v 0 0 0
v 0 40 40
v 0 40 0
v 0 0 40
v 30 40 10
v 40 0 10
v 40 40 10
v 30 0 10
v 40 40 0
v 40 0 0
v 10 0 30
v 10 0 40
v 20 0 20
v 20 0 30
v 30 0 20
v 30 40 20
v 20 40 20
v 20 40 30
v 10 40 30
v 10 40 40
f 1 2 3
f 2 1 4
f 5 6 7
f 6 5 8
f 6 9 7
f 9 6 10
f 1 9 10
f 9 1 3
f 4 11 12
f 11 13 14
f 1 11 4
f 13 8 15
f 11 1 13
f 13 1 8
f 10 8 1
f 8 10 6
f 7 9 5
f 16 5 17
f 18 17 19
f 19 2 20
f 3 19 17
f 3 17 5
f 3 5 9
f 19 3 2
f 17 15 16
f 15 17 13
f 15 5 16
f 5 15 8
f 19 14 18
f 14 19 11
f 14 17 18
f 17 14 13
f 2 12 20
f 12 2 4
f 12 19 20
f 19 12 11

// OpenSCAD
union(){
cube([40,40,10]);
translate([0,0,10])
cube([30,40,10]);
translate([0,0,20])
cube([20,40,10]);
translate([0,0,30])
cube([10,40,10]);
}
